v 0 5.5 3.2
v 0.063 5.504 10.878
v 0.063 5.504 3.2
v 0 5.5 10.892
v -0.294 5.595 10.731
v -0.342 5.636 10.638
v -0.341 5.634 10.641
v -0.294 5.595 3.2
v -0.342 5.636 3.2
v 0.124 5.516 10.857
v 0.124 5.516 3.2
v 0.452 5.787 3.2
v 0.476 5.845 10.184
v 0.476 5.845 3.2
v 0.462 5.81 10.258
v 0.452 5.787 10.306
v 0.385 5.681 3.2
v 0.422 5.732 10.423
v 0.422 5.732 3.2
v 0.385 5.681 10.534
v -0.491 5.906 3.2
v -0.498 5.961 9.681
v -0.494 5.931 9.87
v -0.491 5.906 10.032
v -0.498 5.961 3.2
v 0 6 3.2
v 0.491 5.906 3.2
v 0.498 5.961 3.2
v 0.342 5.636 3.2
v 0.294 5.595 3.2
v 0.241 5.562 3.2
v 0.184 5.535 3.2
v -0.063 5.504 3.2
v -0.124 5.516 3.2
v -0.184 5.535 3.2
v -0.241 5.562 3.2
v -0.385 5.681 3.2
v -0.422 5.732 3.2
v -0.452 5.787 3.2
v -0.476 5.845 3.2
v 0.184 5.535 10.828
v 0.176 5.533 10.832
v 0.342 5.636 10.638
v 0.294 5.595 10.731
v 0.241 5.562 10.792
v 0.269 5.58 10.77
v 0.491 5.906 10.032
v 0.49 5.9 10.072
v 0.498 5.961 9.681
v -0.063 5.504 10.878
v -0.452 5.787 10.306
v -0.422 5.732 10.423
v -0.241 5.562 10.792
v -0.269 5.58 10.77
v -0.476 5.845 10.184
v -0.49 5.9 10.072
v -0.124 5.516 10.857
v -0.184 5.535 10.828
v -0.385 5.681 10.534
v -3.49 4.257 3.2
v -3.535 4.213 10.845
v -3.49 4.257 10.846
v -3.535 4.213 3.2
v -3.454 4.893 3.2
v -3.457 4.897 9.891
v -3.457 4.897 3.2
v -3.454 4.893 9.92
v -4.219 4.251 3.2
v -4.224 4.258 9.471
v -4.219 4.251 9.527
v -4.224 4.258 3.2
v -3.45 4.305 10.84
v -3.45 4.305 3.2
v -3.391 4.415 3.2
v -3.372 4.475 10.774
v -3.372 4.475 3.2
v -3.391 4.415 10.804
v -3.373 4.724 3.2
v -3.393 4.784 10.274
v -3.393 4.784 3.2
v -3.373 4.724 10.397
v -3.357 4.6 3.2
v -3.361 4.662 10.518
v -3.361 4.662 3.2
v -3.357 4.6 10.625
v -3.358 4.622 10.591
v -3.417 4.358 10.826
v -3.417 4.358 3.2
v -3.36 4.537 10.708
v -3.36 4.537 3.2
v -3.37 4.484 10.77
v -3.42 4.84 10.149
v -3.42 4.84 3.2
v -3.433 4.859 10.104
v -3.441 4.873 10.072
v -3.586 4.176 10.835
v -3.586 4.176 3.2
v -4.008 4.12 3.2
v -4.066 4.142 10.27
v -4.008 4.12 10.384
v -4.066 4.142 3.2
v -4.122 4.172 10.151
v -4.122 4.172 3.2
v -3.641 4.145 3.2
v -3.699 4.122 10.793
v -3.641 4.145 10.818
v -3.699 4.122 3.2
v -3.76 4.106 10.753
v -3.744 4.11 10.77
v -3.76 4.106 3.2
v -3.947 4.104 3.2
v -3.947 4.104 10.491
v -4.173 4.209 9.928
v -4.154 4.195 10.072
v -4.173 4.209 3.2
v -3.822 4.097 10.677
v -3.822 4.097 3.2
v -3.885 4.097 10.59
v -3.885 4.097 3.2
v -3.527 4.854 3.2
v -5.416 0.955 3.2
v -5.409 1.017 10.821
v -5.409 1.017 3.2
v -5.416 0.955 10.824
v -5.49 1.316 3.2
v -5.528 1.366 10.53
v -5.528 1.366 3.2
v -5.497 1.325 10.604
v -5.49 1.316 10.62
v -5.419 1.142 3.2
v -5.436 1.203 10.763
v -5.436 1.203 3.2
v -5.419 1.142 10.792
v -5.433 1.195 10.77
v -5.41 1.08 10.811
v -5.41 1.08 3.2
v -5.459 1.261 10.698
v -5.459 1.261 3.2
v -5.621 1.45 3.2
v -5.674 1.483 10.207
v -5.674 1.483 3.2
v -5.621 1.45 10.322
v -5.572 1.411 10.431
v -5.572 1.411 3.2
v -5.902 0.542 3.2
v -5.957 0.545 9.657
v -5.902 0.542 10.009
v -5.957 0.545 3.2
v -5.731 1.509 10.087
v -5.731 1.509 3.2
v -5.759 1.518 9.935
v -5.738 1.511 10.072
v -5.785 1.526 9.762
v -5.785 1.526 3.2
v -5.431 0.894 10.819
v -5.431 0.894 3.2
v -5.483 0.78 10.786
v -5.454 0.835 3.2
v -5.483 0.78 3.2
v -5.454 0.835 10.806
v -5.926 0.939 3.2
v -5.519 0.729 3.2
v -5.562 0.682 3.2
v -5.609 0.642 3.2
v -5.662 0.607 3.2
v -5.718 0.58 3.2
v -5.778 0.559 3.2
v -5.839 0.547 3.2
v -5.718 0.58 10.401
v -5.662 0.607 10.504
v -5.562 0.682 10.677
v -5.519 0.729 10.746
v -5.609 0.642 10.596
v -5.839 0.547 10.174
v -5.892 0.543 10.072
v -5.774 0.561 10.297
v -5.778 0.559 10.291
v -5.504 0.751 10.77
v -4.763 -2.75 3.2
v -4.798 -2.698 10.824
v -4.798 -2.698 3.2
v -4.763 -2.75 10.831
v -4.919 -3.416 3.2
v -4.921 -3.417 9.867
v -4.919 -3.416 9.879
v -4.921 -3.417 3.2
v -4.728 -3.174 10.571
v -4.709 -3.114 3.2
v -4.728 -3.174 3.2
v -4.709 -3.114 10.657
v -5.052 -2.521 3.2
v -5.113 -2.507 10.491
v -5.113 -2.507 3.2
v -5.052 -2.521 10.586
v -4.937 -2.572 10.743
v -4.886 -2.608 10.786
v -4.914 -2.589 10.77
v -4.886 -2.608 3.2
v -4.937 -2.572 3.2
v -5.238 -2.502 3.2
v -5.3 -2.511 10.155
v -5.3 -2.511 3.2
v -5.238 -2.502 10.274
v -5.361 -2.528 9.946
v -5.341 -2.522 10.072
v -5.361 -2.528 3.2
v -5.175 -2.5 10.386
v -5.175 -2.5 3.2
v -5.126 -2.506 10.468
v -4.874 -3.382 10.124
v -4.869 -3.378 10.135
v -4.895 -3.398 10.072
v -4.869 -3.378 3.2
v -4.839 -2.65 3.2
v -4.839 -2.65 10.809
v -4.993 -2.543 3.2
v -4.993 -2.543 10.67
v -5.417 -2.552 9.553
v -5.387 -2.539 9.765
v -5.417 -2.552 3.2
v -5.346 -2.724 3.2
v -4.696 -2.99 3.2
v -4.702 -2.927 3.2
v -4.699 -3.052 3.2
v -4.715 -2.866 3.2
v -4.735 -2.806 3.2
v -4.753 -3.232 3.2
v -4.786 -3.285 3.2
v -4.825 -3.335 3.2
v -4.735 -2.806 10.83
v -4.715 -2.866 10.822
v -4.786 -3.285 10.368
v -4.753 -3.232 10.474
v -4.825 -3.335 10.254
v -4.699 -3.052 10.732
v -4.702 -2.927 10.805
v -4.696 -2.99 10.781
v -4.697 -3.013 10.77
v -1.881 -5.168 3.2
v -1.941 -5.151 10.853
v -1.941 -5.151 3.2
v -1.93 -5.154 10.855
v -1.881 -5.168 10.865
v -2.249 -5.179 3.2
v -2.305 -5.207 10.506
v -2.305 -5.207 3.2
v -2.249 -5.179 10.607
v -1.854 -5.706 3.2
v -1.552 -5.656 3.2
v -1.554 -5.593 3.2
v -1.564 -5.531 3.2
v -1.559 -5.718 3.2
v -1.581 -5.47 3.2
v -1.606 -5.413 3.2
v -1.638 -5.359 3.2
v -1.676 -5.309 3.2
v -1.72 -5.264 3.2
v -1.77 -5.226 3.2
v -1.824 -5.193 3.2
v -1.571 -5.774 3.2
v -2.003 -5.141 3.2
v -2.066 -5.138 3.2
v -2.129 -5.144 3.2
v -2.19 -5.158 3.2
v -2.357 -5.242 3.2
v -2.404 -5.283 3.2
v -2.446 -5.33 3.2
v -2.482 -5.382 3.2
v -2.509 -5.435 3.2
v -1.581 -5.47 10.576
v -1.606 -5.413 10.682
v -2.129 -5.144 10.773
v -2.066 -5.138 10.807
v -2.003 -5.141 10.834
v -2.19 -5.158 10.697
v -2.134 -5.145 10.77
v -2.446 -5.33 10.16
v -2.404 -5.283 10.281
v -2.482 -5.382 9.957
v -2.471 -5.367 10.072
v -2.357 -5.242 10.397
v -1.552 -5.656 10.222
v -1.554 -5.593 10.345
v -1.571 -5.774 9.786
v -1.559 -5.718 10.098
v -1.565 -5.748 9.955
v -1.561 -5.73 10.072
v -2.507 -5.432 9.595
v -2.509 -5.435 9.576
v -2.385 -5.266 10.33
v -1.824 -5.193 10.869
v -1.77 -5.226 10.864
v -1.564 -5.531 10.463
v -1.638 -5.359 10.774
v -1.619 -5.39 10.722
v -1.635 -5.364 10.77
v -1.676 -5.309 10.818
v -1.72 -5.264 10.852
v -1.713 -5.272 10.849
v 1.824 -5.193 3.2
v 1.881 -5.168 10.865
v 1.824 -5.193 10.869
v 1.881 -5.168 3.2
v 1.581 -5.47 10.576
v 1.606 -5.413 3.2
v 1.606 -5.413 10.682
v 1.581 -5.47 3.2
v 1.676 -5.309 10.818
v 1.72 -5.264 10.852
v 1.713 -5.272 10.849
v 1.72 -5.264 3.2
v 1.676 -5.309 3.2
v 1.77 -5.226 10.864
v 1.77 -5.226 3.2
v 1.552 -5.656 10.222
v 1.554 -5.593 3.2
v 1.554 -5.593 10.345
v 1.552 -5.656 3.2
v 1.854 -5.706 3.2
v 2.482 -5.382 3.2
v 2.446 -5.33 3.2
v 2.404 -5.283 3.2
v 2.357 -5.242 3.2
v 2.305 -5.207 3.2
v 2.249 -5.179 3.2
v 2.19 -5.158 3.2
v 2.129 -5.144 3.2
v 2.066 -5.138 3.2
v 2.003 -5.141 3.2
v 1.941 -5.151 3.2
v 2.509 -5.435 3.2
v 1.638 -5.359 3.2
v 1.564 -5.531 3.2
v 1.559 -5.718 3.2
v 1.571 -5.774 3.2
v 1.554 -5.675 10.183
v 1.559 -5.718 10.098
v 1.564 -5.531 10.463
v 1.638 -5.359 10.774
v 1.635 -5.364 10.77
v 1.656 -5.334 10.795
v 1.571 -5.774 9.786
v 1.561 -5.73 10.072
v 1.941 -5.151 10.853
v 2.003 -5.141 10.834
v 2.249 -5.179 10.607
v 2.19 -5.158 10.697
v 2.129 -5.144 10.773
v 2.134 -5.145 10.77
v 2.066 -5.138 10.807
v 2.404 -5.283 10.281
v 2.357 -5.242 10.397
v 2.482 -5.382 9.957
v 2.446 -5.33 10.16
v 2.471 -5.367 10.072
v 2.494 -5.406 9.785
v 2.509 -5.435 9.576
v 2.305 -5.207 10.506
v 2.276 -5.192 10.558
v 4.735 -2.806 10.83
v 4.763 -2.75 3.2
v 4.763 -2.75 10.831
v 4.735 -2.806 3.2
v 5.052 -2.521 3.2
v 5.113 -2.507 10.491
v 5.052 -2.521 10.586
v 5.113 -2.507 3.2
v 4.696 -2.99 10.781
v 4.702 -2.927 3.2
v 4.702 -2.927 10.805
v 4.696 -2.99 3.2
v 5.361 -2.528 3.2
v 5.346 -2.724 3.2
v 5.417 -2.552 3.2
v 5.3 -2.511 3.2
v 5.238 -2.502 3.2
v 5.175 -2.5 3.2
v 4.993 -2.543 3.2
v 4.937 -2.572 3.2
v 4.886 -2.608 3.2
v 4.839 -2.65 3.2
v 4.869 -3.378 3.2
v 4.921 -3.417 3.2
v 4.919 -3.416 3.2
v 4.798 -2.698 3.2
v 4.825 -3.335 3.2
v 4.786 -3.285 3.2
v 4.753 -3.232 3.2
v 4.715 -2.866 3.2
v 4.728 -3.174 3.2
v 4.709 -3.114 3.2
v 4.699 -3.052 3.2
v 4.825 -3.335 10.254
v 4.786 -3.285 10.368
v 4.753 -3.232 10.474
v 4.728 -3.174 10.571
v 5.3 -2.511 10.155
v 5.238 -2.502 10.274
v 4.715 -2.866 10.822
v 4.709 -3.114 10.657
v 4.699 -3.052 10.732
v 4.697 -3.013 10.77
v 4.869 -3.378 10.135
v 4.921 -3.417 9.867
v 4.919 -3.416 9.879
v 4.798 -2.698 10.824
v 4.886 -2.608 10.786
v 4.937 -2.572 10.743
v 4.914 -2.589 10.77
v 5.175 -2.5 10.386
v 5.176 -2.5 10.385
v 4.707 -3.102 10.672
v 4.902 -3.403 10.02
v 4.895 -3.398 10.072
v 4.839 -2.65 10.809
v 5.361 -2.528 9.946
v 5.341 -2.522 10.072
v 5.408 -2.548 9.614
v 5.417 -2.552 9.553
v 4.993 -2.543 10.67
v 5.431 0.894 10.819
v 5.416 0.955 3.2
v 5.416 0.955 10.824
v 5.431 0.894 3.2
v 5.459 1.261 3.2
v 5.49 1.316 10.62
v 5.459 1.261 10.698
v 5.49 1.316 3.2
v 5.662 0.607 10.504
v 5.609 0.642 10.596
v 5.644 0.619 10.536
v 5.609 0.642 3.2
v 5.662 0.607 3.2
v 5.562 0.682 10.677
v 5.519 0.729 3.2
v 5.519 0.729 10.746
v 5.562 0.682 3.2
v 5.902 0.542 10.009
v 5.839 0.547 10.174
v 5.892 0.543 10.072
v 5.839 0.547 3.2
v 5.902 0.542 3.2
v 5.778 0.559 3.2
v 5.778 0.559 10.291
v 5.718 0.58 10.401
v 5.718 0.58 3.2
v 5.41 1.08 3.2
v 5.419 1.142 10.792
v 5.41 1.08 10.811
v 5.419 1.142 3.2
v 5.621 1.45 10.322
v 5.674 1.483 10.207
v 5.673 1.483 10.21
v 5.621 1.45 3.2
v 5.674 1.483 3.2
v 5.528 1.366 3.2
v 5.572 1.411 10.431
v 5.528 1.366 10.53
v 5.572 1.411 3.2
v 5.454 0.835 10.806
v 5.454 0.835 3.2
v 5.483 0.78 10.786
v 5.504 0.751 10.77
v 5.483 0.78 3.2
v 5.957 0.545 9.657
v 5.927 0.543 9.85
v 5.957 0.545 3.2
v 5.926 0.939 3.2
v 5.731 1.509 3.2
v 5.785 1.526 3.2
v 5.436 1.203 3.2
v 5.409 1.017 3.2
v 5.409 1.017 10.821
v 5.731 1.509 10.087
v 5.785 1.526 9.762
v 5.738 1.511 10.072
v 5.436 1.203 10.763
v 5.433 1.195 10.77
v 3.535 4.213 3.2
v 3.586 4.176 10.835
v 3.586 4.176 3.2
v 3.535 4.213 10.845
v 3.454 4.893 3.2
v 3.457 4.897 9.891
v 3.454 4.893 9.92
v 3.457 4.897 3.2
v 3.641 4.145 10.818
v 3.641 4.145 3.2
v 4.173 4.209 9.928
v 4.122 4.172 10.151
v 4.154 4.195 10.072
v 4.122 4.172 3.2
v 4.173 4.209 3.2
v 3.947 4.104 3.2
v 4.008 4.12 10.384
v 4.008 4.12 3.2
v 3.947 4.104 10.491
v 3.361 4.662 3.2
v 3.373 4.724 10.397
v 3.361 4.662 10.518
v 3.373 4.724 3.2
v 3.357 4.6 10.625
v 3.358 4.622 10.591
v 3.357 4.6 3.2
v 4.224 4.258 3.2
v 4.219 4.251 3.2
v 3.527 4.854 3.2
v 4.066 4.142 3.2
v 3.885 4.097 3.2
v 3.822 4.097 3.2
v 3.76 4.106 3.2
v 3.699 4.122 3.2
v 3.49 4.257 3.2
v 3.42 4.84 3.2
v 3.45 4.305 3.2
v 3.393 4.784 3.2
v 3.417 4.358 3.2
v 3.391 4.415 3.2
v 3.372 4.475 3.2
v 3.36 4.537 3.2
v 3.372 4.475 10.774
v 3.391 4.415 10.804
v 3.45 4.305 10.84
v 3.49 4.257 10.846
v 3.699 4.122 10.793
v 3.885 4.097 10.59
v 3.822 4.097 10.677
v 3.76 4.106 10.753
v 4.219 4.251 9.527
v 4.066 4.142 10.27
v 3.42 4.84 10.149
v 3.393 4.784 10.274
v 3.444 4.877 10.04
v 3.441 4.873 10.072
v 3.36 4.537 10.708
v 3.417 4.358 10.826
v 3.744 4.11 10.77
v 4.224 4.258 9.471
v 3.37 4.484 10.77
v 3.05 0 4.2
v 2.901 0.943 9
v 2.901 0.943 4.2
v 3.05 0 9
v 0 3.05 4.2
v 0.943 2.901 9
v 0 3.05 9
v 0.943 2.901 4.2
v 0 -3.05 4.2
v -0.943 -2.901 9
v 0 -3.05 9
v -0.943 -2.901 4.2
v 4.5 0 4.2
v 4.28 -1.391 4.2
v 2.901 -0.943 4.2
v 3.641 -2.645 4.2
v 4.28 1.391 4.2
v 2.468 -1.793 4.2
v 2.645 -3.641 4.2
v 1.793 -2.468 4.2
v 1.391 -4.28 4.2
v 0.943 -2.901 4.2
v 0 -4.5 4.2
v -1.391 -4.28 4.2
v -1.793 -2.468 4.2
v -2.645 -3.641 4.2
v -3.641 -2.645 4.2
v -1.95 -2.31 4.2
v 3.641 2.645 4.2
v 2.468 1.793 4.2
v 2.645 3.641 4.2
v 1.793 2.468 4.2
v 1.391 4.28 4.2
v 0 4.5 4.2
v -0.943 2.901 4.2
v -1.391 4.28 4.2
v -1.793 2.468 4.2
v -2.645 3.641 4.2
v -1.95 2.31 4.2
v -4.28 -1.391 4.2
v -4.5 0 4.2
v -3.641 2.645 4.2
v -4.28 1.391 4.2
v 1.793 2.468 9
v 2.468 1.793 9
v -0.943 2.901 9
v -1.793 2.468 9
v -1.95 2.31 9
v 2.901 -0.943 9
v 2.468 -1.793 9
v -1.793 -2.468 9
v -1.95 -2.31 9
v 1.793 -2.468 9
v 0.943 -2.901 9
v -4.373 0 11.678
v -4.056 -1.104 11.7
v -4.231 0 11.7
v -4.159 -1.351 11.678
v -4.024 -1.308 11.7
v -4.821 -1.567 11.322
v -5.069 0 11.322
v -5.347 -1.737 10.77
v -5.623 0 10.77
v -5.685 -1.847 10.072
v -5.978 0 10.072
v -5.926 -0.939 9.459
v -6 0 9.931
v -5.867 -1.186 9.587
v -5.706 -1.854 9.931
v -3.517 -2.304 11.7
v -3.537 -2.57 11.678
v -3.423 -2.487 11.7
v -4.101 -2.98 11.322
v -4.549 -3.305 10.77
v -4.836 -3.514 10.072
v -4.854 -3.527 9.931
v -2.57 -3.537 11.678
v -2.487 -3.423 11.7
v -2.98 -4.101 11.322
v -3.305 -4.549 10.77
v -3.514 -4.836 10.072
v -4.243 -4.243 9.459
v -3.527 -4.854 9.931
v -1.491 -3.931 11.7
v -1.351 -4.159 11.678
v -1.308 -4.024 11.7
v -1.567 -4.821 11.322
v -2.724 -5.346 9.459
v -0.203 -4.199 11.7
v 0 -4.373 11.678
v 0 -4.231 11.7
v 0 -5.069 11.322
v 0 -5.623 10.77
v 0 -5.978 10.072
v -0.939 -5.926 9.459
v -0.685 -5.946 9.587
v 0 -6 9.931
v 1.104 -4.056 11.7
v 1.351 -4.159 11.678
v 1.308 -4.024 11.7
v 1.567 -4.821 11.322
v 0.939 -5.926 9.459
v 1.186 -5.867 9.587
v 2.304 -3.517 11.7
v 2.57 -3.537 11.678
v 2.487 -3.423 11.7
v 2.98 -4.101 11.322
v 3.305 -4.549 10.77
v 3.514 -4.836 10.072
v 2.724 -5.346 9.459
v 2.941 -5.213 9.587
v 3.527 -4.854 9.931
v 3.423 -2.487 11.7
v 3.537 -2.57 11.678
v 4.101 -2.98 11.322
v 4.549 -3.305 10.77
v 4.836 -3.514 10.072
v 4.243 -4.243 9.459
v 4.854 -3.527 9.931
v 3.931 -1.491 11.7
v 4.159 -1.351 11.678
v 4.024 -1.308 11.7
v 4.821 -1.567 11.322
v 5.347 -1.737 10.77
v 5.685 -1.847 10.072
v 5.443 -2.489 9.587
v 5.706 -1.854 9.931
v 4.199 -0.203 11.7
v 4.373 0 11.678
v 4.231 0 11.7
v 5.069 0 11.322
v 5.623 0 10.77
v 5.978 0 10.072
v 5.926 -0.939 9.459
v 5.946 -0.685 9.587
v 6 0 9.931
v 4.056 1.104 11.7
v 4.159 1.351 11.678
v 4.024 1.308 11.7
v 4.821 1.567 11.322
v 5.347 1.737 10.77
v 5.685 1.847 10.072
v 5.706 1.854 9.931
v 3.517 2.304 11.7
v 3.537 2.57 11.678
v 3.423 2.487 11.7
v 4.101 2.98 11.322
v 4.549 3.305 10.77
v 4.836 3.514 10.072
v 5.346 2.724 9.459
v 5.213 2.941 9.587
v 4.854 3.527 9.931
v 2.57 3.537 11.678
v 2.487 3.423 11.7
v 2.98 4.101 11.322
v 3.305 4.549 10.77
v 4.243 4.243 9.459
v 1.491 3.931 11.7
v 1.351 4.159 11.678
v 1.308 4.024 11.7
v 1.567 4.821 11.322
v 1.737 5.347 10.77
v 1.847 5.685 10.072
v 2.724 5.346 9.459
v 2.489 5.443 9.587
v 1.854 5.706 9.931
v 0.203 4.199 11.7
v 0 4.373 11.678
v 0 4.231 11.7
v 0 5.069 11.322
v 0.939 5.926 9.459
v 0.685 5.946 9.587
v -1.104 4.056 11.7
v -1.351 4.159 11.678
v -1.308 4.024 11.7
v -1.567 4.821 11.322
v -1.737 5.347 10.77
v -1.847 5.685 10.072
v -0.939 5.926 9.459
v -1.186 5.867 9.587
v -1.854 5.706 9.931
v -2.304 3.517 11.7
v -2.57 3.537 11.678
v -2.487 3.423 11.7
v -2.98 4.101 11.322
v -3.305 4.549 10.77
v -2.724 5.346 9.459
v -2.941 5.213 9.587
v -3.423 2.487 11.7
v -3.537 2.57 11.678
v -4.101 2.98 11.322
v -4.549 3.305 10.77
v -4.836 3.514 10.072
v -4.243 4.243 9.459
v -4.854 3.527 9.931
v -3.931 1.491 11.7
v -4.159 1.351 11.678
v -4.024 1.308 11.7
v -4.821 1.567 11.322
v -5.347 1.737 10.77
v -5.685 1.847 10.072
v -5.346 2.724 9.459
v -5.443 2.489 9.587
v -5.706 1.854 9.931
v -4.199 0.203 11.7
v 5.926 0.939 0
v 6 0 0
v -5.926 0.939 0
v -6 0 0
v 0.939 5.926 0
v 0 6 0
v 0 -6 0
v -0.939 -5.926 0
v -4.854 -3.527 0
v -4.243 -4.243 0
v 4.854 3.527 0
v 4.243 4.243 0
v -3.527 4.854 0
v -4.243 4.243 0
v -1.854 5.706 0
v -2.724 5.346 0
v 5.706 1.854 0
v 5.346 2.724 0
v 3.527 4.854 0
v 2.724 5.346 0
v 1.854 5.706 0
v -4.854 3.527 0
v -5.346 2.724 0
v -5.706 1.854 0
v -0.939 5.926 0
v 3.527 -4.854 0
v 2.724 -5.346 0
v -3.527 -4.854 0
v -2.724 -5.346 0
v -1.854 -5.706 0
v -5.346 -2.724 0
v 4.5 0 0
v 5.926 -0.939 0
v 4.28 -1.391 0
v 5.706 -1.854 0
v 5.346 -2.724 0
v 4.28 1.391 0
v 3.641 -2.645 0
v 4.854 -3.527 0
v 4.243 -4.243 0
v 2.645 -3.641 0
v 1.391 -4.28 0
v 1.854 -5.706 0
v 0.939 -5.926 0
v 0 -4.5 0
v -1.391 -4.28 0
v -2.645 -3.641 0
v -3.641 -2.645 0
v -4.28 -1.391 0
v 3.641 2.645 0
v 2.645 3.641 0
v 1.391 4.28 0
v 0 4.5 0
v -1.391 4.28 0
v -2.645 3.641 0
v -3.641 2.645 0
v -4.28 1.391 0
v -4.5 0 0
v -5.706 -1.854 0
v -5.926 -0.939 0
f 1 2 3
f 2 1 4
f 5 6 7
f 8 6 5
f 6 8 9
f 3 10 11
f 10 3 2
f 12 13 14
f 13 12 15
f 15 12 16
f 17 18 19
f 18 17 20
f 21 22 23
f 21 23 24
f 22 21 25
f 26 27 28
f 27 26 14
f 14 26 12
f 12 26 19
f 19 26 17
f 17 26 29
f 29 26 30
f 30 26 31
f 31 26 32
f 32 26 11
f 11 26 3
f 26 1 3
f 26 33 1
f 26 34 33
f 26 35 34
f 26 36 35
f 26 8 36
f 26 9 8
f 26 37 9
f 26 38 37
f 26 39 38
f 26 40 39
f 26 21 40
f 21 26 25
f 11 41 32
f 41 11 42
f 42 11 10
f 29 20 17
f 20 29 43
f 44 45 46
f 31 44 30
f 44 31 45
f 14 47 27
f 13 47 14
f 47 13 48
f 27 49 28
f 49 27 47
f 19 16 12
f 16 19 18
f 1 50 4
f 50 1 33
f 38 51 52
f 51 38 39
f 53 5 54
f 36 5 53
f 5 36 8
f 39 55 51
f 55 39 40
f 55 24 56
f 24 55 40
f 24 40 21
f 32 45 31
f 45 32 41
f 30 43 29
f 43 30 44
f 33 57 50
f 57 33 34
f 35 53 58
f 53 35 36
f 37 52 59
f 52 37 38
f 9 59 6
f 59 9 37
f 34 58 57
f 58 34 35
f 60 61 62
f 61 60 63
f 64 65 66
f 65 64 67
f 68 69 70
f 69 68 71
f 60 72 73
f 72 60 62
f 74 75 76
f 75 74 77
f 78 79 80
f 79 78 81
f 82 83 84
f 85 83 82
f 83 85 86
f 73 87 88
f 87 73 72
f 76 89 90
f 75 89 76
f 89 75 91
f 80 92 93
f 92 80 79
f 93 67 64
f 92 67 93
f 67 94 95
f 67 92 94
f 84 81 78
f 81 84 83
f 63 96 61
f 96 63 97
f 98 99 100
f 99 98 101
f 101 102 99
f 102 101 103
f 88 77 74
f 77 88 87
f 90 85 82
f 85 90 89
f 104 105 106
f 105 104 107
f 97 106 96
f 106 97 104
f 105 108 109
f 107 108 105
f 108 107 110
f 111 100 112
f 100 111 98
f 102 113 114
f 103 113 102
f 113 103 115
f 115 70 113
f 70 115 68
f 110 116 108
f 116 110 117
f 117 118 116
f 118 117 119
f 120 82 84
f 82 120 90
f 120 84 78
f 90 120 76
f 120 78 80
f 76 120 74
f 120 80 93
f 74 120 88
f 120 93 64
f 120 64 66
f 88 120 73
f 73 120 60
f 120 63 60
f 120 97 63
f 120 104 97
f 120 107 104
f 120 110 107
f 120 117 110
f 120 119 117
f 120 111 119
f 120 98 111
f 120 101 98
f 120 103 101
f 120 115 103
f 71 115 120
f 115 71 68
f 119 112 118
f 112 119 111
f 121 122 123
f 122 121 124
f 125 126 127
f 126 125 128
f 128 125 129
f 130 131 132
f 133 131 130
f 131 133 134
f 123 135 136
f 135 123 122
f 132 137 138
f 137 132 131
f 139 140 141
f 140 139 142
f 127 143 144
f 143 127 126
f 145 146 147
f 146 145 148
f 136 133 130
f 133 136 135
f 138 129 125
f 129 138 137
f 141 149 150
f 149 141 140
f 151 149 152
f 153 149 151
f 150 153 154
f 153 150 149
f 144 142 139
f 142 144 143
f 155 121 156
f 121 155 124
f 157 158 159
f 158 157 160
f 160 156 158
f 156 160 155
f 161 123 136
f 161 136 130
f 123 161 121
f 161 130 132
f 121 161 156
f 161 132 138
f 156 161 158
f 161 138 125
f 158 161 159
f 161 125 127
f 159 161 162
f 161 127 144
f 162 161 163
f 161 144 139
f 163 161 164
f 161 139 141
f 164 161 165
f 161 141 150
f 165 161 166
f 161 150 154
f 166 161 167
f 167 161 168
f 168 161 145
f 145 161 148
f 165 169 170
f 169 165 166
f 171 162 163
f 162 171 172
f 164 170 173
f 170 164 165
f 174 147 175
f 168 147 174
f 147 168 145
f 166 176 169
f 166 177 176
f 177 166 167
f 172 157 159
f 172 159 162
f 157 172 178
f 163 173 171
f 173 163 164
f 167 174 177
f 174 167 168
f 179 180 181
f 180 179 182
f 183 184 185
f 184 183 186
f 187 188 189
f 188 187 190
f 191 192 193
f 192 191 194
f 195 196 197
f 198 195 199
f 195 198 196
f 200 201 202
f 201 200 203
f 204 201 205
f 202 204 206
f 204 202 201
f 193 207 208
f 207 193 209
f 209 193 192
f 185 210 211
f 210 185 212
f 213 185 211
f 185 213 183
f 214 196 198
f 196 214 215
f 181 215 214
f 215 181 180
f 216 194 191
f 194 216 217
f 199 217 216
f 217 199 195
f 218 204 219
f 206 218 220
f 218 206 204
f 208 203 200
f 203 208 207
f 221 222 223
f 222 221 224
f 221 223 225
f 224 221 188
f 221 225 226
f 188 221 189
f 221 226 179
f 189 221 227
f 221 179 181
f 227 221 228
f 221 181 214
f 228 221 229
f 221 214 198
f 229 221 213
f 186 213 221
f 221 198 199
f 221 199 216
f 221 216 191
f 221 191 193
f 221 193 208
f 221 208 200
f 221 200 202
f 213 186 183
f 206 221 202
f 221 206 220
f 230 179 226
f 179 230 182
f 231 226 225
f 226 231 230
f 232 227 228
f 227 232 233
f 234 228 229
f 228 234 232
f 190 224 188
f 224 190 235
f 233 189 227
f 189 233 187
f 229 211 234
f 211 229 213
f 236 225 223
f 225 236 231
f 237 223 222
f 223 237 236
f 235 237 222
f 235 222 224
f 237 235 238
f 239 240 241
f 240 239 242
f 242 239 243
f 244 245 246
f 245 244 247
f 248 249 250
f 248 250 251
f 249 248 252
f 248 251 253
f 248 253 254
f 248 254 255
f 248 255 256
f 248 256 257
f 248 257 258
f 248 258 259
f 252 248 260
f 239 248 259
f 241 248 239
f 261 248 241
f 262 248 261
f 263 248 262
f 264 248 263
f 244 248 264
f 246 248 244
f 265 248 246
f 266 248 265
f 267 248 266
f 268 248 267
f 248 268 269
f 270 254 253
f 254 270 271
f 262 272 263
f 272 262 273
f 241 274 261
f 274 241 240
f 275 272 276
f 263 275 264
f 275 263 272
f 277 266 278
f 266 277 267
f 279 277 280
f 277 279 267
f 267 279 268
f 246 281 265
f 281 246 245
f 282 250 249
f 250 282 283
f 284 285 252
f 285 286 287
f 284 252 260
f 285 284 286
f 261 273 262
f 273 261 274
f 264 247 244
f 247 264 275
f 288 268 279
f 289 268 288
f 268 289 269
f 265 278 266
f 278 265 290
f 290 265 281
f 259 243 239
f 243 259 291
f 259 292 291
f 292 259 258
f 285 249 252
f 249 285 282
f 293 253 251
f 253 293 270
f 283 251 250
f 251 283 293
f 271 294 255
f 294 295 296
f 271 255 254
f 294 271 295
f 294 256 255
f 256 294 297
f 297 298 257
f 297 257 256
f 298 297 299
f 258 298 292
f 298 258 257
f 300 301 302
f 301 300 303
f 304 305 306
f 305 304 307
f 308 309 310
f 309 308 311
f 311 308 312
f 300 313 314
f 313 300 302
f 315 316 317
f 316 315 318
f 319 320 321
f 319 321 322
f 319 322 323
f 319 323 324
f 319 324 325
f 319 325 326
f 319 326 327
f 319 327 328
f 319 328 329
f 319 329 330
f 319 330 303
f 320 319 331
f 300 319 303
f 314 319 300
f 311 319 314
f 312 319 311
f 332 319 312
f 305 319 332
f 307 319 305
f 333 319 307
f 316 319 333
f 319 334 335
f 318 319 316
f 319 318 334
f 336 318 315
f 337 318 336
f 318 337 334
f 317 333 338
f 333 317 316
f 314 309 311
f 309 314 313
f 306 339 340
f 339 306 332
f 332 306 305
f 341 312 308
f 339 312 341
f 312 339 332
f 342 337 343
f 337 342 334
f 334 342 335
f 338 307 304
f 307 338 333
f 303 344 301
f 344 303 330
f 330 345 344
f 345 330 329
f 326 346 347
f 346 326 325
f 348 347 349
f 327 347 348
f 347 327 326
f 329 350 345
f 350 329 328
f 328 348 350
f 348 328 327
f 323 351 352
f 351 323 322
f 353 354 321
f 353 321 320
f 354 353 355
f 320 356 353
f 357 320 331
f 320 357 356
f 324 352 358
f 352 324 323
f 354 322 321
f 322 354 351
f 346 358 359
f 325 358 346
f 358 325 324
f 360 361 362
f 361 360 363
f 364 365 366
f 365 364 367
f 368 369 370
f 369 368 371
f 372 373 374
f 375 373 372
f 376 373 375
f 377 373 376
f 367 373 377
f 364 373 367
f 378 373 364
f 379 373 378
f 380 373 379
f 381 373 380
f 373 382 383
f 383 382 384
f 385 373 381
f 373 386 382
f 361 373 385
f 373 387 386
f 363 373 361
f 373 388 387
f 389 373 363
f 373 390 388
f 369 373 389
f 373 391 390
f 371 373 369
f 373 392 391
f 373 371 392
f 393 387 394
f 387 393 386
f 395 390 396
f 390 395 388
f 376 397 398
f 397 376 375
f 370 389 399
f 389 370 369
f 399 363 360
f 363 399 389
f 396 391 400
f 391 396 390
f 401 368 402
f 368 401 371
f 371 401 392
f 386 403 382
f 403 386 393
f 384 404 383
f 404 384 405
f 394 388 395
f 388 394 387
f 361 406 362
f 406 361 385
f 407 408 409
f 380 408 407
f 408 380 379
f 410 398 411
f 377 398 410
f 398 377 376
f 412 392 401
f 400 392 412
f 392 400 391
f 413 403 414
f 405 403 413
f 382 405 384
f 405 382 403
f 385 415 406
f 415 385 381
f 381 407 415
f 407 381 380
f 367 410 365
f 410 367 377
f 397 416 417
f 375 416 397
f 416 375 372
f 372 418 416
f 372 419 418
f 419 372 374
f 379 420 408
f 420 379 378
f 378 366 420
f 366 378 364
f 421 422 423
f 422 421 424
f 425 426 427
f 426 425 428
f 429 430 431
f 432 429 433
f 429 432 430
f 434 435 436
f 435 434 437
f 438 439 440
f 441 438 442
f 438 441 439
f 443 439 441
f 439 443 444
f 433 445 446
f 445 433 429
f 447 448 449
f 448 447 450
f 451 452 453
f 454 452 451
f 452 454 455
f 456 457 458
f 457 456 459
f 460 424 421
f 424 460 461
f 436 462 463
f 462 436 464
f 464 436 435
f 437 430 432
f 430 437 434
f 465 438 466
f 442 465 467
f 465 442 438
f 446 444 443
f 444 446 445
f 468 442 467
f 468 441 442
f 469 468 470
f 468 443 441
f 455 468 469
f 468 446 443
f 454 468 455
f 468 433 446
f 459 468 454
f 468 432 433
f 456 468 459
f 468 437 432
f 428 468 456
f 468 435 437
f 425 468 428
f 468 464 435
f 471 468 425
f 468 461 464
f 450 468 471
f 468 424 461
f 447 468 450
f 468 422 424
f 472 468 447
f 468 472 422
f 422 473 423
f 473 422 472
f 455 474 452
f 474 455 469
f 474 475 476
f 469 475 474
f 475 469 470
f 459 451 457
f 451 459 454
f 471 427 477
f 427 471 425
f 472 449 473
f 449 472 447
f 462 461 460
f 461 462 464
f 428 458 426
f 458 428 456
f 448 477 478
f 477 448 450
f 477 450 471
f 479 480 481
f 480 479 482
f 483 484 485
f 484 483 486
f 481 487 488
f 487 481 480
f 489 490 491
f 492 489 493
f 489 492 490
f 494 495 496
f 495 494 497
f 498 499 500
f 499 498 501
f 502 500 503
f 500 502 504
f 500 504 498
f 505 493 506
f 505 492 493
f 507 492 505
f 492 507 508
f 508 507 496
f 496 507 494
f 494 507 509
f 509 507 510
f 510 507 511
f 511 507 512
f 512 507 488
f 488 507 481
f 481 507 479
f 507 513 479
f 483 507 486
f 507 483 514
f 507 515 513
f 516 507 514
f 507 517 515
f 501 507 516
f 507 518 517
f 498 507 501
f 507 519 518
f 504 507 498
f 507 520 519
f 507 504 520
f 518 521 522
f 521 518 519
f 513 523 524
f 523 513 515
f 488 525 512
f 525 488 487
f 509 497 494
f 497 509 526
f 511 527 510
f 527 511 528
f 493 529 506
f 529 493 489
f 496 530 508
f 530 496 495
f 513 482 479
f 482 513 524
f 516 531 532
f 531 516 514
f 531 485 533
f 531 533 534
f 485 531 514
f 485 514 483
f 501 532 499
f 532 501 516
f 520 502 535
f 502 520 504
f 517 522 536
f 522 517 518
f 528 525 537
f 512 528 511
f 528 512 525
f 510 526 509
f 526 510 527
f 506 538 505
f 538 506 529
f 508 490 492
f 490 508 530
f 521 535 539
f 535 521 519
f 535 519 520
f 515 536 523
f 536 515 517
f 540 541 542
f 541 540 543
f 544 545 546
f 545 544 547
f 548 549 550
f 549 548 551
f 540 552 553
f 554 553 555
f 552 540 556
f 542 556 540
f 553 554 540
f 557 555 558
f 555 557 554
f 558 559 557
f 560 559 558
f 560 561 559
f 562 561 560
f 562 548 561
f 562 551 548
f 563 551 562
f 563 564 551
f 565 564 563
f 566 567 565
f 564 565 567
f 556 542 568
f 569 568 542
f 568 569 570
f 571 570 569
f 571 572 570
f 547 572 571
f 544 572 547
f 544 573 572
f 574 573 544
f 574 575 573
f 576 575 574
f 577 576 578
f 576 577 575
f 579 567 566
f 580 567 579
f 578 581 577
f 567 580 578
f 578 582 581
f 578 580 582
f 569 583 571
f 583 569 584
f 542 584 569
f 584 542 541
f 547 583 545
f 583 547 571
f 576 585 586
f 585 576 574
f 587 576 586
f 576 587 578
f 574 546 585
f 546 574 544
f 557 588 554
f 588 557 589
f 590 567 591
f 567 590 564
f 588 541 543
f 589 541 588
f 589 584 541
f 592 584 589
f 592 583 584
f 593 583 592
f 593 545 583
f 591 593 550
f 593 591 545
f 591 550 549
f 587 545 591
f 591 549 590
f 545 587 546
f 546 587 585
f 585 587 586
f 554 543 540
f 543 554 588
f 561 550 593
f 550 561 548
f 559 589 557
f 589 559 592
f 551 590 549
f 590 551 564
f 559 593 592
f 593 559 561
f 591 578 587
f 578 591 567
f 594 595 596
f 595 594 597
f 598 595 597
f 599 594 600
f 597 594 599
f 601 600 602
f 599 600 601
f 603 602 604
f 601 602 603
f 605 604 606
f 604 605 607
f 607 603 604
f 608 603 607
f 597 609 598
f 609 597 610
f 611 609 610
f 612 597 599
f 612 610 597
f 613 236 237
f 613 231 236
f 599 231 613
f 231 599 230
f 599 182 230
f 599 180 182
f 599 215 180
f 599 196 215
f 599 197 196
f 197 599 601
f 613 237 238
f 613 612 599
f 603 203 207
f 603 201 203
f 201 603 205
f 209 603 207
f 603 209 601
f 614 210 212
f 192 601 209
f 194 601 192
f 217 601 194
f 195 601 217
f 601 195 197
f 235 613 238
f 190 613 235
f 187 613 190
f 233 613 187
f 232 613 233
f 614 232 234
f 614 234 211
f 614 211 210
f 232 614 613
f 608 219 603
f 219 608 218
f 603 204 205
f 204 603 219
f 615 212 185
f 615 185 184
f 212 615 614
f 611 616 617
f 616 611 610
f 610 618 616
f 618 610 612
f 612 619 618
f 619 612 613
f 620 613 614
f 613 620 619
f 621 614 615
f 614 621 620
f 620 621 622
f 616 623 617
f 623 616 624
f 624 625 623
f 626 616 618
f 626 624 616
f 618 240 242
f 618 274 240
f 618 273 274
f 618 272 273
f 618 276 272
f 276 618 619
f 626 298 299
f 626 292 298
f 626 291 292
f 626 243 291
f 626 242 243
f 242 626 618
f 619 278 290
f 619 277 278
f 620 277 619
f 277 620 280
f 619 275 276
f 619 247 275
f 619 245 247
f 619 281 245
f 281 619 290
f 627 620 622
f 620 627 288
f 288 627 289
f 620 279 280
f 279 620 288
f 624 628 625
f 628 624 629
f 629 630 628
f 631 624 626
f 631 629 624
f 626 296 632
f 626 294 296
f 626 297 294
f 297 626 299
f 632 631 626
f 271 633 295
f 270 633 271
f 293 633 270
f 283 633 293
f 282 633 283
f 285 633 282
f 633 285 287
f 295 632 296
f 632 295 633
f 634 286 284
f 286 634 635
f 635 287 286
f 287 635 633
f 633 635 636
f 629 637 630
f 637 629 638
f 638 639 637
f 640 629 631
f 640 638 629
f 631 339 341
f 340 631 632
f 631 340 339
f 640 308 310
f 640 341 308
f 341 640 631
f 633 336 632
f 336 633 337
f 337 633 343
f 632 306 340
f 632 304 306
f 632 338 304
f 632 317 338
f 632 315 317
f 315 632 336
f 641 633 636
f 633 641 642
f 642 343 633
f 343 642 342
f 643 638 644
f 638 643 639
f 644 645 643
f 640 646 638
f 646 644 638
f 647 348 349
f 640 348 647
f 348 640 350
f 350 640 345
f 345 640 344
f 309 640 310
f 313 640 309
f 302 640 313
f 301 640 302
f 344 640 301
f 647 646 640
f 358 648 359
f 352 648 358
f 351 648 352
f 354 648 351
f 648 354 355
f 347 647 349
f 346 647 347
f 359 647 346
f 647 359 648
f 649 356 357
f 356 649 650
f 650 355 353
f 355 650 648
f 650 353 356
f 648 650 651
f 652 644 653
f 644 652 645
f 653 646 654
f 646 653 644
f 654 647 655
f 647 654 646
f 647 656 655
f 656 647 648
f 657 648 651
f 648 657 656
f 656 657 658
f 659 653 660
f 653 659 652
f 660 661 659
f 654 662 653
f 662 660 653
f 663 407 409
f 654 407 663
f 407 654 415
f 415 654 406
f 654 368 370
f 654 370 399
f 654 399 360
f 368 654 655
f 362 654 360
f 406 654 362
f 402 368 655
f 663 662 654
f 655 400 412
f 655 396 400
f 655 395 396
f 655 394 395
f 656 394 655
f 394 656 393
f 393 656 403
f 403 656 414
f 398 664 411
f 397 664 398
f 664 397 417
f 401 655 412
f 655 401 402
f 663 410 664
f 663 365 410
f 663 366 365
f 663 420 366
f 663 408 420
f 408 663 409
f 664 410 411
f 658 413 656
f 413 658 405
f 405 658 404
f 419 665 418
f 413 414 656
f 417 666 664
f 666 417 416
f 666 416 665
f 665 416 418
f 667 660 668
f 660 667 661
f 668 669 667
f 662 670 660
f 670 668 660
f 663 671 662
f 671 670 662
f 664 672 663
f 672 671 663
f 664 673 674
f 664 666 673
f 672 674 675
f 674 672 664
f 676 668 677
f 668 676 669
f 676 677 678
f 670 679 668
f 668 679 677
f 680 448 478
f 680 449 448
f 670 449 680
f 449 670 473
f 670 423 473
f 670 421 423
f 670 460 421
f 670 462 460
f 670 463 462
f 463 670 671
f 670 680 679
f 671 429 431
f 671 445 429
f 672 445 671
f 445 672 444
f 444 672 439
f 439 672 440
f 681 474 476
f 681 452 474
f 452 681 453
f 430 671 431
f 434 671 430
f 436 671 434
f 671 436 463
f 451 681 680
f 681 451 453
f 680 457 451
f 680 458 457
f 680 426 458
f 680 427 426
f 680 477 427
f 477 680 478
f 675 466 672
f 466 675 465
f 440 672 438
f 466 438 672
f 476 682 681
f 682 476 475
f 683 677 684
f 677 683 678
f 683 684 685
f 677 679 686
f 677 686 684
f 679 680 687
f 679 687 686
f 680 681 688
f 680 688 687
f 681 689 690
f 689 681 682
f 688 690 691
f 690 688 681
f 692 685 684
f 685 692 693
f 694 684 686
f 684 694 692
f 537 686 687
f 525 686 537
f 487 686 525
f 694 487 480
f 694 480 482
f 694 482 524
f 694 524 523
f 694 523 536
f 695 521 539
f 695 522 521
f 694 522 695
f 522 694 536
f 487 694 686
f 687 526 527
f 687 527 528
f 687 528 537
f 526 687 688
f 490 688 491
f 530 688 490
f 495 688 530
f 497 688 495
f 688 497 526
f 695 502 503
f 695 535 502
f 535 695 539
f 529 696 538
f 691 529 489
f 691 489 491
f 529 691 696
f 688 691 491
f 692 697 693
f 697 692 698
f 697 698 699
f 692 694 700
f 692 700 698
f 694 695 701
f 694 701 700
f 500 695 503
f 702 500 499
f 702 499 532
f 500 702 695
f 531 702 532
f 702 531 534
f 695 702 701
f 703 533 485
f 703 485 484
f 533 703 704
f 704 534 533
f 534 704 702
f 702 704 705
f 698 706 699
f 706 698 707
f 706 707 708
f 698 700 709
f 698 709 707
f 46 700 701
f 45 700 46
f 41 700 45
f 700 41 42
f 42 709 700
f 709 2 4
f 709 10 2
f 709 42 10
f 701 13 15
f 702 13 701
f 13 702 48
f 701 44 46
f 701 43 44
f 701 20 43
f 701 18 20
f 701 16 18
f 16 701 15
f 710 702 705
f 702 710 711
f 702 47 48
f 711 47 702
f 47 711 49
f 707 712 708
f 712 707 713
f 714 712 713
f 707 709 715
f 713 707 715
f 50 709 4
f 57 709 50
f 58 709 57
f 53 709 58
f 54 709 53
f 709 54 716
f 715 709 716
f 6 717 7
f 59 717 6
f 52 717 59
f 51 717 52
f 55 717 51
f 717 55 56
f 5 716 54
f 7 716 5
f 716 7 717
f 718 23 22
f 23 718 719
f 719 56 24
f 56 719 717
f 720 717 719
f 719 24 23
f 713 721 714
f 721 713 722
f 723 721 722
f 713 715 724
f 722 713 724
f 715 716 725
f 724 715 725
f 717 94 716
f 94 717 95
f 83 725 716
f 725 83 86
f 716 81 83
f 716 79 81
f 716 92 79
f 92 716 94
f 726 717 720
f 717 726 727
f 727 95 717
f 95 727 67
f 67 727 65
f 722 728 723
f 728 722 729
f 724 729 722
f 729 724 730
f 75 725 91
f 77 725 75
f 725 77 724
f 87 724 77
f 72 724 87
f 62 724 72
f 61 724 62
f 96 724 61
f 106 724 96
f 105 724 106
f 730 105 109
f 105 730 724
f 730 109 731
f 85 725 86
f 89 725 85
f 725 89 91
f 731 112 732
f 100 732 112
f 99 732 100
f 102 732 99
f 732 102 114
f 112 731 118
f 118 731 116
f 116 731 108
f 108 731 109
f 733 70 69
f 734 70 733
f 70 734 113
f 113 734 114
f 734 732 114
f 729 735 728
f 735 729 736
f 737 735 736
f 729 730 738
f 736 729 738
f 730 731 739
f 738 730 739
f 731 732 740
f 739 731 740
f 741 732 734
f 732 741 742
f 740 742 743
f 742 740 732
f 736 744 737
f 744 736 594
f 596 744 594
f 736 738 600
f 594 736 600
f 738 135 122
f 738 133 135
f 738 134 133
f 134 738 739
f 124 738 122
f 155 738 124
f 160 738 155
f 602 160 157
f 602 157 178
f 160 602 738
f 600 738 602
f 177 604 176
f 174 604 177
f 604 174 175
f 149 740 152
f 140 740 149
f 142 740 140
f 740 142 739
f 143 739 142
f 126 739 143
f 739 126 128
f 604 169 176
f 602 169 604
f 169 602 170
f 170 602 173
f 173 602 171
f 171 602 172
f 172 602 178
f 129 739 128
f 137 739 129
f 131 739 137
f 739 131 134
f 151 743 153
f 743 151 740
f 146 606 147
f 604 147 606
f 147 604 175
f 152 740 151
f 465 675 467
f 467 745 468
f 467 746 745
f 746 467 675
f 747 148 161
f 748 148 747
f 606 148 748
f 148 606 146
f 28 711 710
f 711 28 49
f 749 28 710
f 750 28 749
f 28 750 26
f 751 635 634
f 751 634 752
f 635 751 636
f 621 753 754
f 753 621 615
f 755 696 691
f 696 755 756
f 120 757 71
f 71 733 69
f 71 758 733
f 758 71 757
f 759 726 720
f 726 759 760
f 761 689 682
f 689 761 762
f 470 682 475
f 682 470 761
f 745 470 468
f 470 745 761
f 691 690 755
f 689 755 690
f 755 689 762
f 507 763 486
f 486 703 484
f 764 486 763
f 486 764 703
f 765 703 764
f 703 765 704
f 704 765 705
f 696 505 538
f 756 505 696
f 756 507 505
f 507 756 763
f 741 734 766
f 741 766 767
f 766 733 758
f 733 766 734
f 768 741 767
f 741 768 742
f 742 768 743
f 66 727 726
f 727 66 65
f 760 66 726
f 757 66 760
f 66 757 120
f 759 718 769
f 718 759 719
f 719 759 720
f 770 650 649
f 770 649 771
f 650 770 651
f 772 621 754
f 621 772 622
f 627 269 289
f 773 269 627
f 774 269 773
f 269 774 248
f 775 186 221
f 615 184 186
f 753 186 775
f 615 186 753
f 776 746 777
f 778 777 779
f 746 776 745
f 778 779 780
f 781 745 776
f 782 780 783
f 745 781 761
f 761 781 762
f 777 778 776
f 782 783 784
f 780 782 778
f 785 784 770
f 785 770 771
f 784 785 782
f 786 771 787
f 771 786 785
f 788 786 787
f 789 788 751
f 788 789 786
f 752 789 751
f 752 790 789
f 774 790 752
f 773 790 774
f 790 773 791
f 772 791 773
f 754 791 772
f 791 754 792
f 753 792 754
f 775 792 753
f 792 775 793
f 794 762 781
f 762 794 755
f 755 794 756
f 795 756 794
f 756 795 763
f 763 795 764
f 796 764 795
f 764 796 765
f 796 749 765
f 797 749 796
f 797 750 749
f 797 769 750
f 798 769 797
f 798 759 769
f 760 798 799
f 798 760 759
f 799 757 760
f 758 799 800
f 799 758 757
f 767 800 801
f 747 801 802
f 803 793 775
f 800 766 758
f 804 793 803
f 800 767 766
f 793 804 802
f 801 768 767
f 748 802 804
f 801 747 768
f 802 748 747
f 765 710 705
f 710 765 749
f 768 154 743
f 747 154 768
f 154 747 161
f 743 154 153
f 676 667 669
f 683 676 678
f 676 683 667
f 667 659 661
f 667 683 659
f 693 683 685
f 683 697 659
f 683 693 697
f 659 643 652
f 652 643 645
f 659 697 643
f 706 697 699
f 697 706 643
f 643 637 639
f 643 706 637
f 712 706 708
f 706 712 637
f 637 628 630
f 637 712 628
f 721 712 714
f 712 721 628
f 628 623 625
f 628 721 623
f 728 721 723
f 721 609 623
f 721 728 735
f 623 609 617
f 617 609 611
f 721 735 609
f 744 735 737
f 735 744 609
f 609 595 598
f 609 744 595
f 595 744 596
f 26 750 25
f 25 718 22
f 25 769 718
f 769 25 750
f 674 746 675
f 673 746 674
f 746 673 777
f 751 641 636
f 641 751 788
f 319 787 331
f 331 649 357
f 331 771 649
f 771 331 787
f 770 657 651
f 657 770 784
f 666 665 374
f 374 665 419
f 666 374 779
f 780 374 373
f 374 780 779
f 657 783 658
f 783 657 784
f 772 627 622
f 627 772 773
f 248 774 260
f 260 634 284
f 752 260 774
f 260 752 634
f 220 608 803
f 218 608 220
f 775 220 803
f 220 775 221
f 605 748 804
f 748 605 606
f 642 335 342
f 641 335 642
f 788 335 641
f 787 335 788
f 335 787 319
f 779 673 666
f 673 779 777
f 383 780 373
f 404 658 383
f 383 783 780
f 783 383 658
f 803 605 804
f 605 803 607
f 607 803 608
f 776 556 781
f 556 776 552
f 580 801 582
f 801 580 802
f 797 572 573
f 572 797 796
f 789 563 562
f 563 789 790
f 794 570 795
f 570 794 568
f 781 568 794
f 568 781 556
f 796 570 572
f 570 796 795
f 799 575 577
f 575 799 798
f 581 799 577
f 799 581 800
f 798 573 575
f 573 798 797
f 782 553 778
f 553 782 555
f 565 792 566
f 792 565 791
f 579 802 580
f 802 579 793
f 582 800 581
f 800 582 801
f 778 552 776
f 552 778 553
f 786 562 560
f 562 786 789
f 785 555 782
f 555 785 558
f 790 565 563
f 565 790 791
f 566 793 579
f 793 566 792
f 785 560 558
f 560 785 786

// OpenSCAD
/*

Parametric Potentiometer Knob Generator
version 1.4
2013 Steve Cooley
http://sc-fa.com
http://beatseqr.com
http://hapticsynapses.com

parametric potentiometer knob generator by steve cooley is licensed under a Creative Commons Attribution-NonCommercial-ShareAlike 3.0 Unported License. Based on a work at sc-fa.com. Permissions beyond the scope of this license may be available at http://sc-fa.com/blog/contact.

view terms of the license here:
http://creativecommons.org/licenses/by-nc-sa/3.0/


version history
---------------
1.4 2013-07-16 added an additive OR subtractive pill shaped indicator type
1.3 2013-04-01 updated for more awesome Thingiverse Customizer
1.2 2013-01-09 updated for Thingiverse Customizer
1.1 2012-04-12 fixed the arrow indicator code to be more robust and easier to adjust parameters for.
1.0 2012-03-?? initial release.


*/

/* [Physical attributes] */

bottom_spaceH=4.2;
bottom_spaceD=9;
layerH=0;

// All values are in Millimeters!  How big the top of the knob is:
01_knob_diameter_top = 12; //[10:100]
knob_radius_top = 01_knob_diameter_top / 2;

// How big the bottom of the knob is:
02_knob_diameter_bottom = 12; // [10:100]
knob_radius_bottom = 02_knob_diameter_bottom / 2;

// how tall the knob is:
03_knob_height = 11.7; // [5:50]
knob_height = 03_knob_height / 1;

// how smooth or geometric the knob is:
04_knob_smoothness = 40; // [3:40]
knob_smoothness = 04_knob_smoothness / 1;

// (measure the potentiometer shaft with calipers and remember to add a bit for shrinkage.)
05_shaft_diameter = 6.1; // this could be a slider if precision were available
shaft_radius = 05_shaft_diameter / 2;

// how much of the shaft the knob should allow space inside for:
06_shaft_height = 9; // [1:40]
shaft_height = 06_shaft_height / 1;

// higher is smoother
07_shaft_smoothness = 20; // [3:20]
shaft_smoothness = 07_shaft_smoothness / 1;

// some potentiometers have a flat surface on the shaft to allow for the use of a set screw.
08_shaft_hole_is_flatted = "true"; // [true,false]

// ignore if no flat is needed.
09_shaft_hole_flat_size = 5; // this could be a slider if precision were available
flat_size = 09_shaft_hole_flat_size / 1;

/* [Set screw] */

// some potentiometers need to have their knobs affixed with a set screw.
10_set_screw = "false"; //[true,false]

// in MM:
11_set_screw_diameter = 3; // [0:8]
set_screw_radius = 11_set_screw_diameter / 2;

// how deep into the knob, from the side:
12_set_screw_depth = 9; // [0:20]
set_screw_depth = 12_set_screw_depth / 1;

// from the top:
13_set_screw_height = 4; // [0:20]
set_screw_height = 13_set_screw_height / 1;

// higher is smoother:
14_quality_of_set_screw = 20; // [0:20]
quality_of_set_screw = 14_quality_of_set_screw / 1;

/* [Decorations] */

// thanks to http://www.iheartrobotics.com/ for the articles!
15_top_edge_smoothing = "true"; // [true,false]

// how big of a smoothing radius to apply
16_top_edge_smoothing_radius = 2.5; // [1:10]
smoothing_radius = 16_top_edge_smoothing_radius / 1;

// Number of facets for the rounding cylinder
17_top_edge_smoothing_smoothness = 20.0; // [1:40]
smooth = 17_top_edge_smoothing_smoothness / 1;

ct = -0.1 / 1; 							// circle translate? not sure.
circle_radius = knob_radius_top / 1;  	// just match the top edge radius
circle_height = 1 / 1; 					// actually.. I don't know what this does.
pad = 0.2 / 1;							// Padding to maintain manifold



/* [External indicator] */

// this is a corner edge of a cube sticking out of the cylinder at the bottom, you can use it instead of the arrow shaped cutout in the top if you like. Or both.
18_pointy_external_indicator = "false"; // [true,false]


// how tall should the indicator be, from the bottom:
19_pointy_external_indicator_height = 3; // [1:50]
pointy_external_indicator_height = 19_pointy_external_indicator_height / 1;

// how far out the indicator should poke out:
20_pointy_external_indicator_pokey_outey_ness = 1.0;
pointy_external_indicator_pokey_outey_ness = 20_pointy_external_indicator_pokey_outey_ness * 1;

pokey_outey_value = pointy_external_indicator_pokey_outey_ness - 1 - pad;
pokey_outey = [pokey_outey_value, pokey_outey_value,0];

// there's an arrow shaped hole you can have. There aren't a lot of controls for this.
// please feel free to improve on this script here.

/* [Pill-shaped indicator] */

// there's an arrow shape you can have in the top of the knob.
00_pill_indicator = "false"; // [true,false]

// add or subtract the pill shape?
00_pill_add_or_subtract = "add"; // [add,subtract]

// relative scale of the pill shape:
00_pill_scale = 1.0;

// height of the pill shape:
00_pill_height = 12.0;

// relative scale of length of the pill shape:
00_pill_length = 2.5;

// where to put the arrow, x:
00_pill_location_x = 0.0;

// where to put the arrow, y:
00_pill_location_y = 5.0;

// where to put the arrow, z:
00_pill_location_z = 0.0;

pill_translate = [00_pill_location_x,00_pill_location_y,00_pill_location_z];


/* [Internal Arrow indicator] */

// there's an arrow shape you can have in the top of the knob.
21_top_of_knob_arrow_indicator = "false"; // [true,false]

// scale the arrow head:
22_arrow_head_scale = 0.6;
arrow_scale_head = 22_arrow_head_scale / 1;

// scale the arrow shaft:
23_arrow_shaft_scale = 0;
arrow_scale_shaft = 23_arrow_shaft_scale / 1;

// how big the overall arrow indicator should be:
24_arrow_indicator_scale = 1.3;
arrow_indicator_scale = 24_arrow_indicator_scale / 1;

// where to put the arrow, x:
25_arrow_location_x = 0.0;

// where to put the arrow, y:
26_arrow_location_y = 1.50;

// where to put the arrow, z:
27_arrow_location_z = 12.3;

arrow_indicator_translate = [25_arrow_location_x,26_arrow_location_y,27_arrow_location_z];



/* [Sphere Indentations] */

// for spherical indentations, set the quantity, quality, size, and adjust the placement
28_indentations_sphere = "false"; // [true,false]

29_sphere_number_of_indentations = 12; // [1:50]
sphere_number_of_indentations = 29_sphere_number_of_indentations / 1;

30_sphere_quality_of_indentations = 40; // [1:100]
sphere_quality_of_indentations = 30_sphere_quality_of_indentations / 1;

31_size_of_sphere_indentations = 4; // [1:20]
size_of_sphere_indentations = 31_size_of_sphere_indentations / 1;

// the first number in this set moves the spheres in or out. smaller is closer to the middle
32_sphere_indentation_location_x = 12.0;

// the second number in this set moves the spheres left or right
33_sphere_indentation_location_y = 00.0;

// the third number in this set moves the speheres up or down
34_sphere_indentation_location_z = 15.0;

translation_of_sphere_indentations = [32_sphere_indentation_location_x,33_sphere_indentation_location_y,34_sphere_indentation_location_z];

// in case you are using an odd number of indentations, you way want to adjust the starting angle so that they align to the front or set screw locations.
35_sphere_indentation_starting_rotation = 30; // [-90:90]
sphere_starting_rotation = 35_sphere_indentation_starting_rotation / 1 + 90;

/* [Cylinder Indentations] */

// for cylinder indentations, set quantity, quality, radius, height, and placement
36_indentations_cylinder = "true"; // [true,false]

37_number_of_cylinder_indentations = 9; // [1:40]
cylinder_number_of_indentations = 37_number_of_cylinder_indentations / 1;

// higher is smoother:
38_smoothness_of_cylinder_indentations = 50; // [3:100]
cylinder_quality_of_indentations = 38_smoothness_of_cylinder_indentations / 1;

39_diameter_of_top_of_the_cylinder = 1; // [1:20]
radius_of_cylinder_indentations_top = 39_diameter_of_top_of_the_cylinder / 2;

40_diameter_of_bottom_of_the_cylinder = 1;  // [1:20]
radius_of_cylinder_indentations_bottom = 40_diameter_of_bottom_of_the_cylinder / 2;

41_height_of_cylinder_indentations = 15.0; // [0:40]
height_of_cylinder_indentations = 41_height_of_cylinder_indentations / 1;

// this moves the cylinders in or out from the center
42_position_of_cylinder_x = -0.0; //[-20:20]

// this moves the cylinders left or right
43_position_of_cylinder_y = 0.0; //[-20:20]

// this moves the cylinders up or down
44_position_of_cylinder_z = -1.0; //[-20:20]

translation_of_cylinder_indentations = [42_position_of_cylinder_x,43_position_of_cylinder_y,44_position_of_cylinder_z];

45_cylinder_starting_rotation = 0; // [-90:90]
cylinder_starting_rotation = 45_cylinder_starting_rotation / 1 - 90;


// these are some setup variables... you probably won't need to mess with them.
negative_knob_radius = knob_radius_bottom*-1;


// this is the main module. It calls the submodules.
make_the_knob();

module make_the_knob()
{
difference()
{
	union()
	{
	difference()
		{
		difference()
			{
		
			difference() 
				{
				difference() 
					{
					
					union()
						{
						
						difference()
							{
							// main cylinder
							cylinder(r1=knob_radius_bottom,r2=knob_radius_top,h=knob_height, $fn=knob_smoothness);
							
							smoothing();				
		
							}
				
						external_direction_indicator();	
						}
					
					}
					
				set_screw_hole();
				}
			
			if(00_pill_add_or_subtract == "subtract")
				{
				pill();
				}
			arrow_indicator();
			indentations();
			}
		
	}
	if(00_pill_add_or_subtract == "add")
							{
							pill();
							}
	
	}
shaft_hole();
bottom_space();    
}

}
module smoothing() {

// smoothing the top
				if(15_top_edge_smoothing == "true")
					{		
						translate([0,0,knob_height])
						rotate([180,0,0])
						difference() {
							rotate_extrude(convexity=10,  $fn = smooth)
							translate([circle_radius-ct-smoothing_radius+pad,ct-pad,0])
							square(smoothing_radius+pad,smoothing_radius+pad);
	
							rotate_extrude(convexity=10,  $fn = smooth)
							translate([circle_radius-ct-smoothing_radius,ct+smoothing_radius,0])
							circle(r=smoothing_radius,$fn=smooth);
							}	
					}
}

module external_direction_indicator() {

				if(18_pointy_external_indicator == "true")
						{
						
						
						// outer pointy indicator
						rotate([0,0,45])
						translate(pokey_outey)
						// cube size of 8 minimum to point out
						cube(size=[knob_radius_bottom,knob_radius_bottom,pointy_external_indicator_height],center=false);
						}

}

module shaft_hole() {
				// shaft hole
				difference()
					{
					
					// round shaft hole
					translate([ 0, 0, bottom_spaceH+layerH]) 
					cylinder(r=shaft_radius,h=shaft_height-bottom_spaceH, $fn=shaft_smoothness);
					
					if(08_shaft_hole_is_flatted  == "true")
						{
						// D shaft shape for shaft cutout
						rotate( [0,0,90]) 
						translate([-shaft_radius,-shaft_radius+flat_size,bottom_spaceH]) 
						cube(size=[shaft_radius*2,shaft_radius*2,shaft_height-bottom_spaceH-layerH],center=false);
                        //cube(size=[flat_size,10,13],center=false);
						}
					}
}
module bottom_space() {
    translate([ 0, 0, -1]) 
	cylinder(d=bottom_spaceD,h=bottom_spaceH+1, $fn=shaft_smoothness);				
}

module set_screw_hole() {

			if(10_set_screw == "true")
				{
				// set screw hole
				rotate ([90,0,0])
				translate([ 0, set_screw_height, 1 ])
				cylinder(r=set_screw_radius,h=set_screw_depth, $fn=quality_of_set_screw);
				}
}

module arrow_indicator() {
		if(21_top_of_knob_arrow_indicator == "true")
			{
			translate(arrow_indicator_translate)
			// begin arrow top cutout
			// translate([(knob_radius/2),knob_height,knob_height])
			rotate([90,0,45])
			scale([arrow_indicator_scale*.3,arrow_indicator_scale*.3,arrow_indicator_scale*.3])
			union()
				{			  
				rotate([90,45,0])
				scale([arrow_scale_head,arrow_scale_head,1])
				cylinder(r=8, h=10, $fn=3, center=true);
				rotate([90,45,0])
				translate([-10,0,0])
				scale([arrow_scale_shaft,arrow_scale_shaft,1])
				cube(size=[15,10,10],center=true);
				}
			}
}

module indentations() {

if(28_indentations_sphere == "true")
			{
			for (z = [0:sphere_number_of_indentations]) 
				{
				rotate([0,0,sphere_starting_rotation+((360/sphere_number_of_indentations)*z)])
				translate(translation_of_sphere_indentations)
				sphere(size_of_sphere_indentations, $fn=sphere_quality_of_indentations); 
				}
			}
if(36_indentations_cylinder == "true")
			{
			for (z = [0:cylinder_number_of_indentations]) 
				{
				rotate([0,0,cylinder_starting_rotation+((360/cylinder_number_of_indentations)*z)])
				
				translate([negative_knob_radius,0,knob_height])
				translate(translation_of_cylinder_indentations)
				cylinder(r1=radius_of_cylinder_indentations_bottom, r2=radius_of_cylinder_indentations_top, h=height_of_cylinder_indentations, center=true, $fn=cylinder_quality_of_indentations); 
				}
			}
		}

module pill()
{

if(00_pill_indicator == "true")
	{

	translate(pill_translate)

	rotate([0,0,90])
		{
		union()
			{
			cylinder(00_pill_height,00_pill_scale,00_pill_scale, $fn=40);
			translate([0,-00_pill_scale,0])
				{
					cube([(00_pill_scale*2)*00_pill_length,00_pill_scale*2,00_pill_height]);
				}
			translate([(00_pill_scale*2)*00_pill_length,0,0])
				{
					cylinder(00_pill_height,00_pill_scale,00_pill_scale, $fn=40);
				}
			}
		}
	}
}
